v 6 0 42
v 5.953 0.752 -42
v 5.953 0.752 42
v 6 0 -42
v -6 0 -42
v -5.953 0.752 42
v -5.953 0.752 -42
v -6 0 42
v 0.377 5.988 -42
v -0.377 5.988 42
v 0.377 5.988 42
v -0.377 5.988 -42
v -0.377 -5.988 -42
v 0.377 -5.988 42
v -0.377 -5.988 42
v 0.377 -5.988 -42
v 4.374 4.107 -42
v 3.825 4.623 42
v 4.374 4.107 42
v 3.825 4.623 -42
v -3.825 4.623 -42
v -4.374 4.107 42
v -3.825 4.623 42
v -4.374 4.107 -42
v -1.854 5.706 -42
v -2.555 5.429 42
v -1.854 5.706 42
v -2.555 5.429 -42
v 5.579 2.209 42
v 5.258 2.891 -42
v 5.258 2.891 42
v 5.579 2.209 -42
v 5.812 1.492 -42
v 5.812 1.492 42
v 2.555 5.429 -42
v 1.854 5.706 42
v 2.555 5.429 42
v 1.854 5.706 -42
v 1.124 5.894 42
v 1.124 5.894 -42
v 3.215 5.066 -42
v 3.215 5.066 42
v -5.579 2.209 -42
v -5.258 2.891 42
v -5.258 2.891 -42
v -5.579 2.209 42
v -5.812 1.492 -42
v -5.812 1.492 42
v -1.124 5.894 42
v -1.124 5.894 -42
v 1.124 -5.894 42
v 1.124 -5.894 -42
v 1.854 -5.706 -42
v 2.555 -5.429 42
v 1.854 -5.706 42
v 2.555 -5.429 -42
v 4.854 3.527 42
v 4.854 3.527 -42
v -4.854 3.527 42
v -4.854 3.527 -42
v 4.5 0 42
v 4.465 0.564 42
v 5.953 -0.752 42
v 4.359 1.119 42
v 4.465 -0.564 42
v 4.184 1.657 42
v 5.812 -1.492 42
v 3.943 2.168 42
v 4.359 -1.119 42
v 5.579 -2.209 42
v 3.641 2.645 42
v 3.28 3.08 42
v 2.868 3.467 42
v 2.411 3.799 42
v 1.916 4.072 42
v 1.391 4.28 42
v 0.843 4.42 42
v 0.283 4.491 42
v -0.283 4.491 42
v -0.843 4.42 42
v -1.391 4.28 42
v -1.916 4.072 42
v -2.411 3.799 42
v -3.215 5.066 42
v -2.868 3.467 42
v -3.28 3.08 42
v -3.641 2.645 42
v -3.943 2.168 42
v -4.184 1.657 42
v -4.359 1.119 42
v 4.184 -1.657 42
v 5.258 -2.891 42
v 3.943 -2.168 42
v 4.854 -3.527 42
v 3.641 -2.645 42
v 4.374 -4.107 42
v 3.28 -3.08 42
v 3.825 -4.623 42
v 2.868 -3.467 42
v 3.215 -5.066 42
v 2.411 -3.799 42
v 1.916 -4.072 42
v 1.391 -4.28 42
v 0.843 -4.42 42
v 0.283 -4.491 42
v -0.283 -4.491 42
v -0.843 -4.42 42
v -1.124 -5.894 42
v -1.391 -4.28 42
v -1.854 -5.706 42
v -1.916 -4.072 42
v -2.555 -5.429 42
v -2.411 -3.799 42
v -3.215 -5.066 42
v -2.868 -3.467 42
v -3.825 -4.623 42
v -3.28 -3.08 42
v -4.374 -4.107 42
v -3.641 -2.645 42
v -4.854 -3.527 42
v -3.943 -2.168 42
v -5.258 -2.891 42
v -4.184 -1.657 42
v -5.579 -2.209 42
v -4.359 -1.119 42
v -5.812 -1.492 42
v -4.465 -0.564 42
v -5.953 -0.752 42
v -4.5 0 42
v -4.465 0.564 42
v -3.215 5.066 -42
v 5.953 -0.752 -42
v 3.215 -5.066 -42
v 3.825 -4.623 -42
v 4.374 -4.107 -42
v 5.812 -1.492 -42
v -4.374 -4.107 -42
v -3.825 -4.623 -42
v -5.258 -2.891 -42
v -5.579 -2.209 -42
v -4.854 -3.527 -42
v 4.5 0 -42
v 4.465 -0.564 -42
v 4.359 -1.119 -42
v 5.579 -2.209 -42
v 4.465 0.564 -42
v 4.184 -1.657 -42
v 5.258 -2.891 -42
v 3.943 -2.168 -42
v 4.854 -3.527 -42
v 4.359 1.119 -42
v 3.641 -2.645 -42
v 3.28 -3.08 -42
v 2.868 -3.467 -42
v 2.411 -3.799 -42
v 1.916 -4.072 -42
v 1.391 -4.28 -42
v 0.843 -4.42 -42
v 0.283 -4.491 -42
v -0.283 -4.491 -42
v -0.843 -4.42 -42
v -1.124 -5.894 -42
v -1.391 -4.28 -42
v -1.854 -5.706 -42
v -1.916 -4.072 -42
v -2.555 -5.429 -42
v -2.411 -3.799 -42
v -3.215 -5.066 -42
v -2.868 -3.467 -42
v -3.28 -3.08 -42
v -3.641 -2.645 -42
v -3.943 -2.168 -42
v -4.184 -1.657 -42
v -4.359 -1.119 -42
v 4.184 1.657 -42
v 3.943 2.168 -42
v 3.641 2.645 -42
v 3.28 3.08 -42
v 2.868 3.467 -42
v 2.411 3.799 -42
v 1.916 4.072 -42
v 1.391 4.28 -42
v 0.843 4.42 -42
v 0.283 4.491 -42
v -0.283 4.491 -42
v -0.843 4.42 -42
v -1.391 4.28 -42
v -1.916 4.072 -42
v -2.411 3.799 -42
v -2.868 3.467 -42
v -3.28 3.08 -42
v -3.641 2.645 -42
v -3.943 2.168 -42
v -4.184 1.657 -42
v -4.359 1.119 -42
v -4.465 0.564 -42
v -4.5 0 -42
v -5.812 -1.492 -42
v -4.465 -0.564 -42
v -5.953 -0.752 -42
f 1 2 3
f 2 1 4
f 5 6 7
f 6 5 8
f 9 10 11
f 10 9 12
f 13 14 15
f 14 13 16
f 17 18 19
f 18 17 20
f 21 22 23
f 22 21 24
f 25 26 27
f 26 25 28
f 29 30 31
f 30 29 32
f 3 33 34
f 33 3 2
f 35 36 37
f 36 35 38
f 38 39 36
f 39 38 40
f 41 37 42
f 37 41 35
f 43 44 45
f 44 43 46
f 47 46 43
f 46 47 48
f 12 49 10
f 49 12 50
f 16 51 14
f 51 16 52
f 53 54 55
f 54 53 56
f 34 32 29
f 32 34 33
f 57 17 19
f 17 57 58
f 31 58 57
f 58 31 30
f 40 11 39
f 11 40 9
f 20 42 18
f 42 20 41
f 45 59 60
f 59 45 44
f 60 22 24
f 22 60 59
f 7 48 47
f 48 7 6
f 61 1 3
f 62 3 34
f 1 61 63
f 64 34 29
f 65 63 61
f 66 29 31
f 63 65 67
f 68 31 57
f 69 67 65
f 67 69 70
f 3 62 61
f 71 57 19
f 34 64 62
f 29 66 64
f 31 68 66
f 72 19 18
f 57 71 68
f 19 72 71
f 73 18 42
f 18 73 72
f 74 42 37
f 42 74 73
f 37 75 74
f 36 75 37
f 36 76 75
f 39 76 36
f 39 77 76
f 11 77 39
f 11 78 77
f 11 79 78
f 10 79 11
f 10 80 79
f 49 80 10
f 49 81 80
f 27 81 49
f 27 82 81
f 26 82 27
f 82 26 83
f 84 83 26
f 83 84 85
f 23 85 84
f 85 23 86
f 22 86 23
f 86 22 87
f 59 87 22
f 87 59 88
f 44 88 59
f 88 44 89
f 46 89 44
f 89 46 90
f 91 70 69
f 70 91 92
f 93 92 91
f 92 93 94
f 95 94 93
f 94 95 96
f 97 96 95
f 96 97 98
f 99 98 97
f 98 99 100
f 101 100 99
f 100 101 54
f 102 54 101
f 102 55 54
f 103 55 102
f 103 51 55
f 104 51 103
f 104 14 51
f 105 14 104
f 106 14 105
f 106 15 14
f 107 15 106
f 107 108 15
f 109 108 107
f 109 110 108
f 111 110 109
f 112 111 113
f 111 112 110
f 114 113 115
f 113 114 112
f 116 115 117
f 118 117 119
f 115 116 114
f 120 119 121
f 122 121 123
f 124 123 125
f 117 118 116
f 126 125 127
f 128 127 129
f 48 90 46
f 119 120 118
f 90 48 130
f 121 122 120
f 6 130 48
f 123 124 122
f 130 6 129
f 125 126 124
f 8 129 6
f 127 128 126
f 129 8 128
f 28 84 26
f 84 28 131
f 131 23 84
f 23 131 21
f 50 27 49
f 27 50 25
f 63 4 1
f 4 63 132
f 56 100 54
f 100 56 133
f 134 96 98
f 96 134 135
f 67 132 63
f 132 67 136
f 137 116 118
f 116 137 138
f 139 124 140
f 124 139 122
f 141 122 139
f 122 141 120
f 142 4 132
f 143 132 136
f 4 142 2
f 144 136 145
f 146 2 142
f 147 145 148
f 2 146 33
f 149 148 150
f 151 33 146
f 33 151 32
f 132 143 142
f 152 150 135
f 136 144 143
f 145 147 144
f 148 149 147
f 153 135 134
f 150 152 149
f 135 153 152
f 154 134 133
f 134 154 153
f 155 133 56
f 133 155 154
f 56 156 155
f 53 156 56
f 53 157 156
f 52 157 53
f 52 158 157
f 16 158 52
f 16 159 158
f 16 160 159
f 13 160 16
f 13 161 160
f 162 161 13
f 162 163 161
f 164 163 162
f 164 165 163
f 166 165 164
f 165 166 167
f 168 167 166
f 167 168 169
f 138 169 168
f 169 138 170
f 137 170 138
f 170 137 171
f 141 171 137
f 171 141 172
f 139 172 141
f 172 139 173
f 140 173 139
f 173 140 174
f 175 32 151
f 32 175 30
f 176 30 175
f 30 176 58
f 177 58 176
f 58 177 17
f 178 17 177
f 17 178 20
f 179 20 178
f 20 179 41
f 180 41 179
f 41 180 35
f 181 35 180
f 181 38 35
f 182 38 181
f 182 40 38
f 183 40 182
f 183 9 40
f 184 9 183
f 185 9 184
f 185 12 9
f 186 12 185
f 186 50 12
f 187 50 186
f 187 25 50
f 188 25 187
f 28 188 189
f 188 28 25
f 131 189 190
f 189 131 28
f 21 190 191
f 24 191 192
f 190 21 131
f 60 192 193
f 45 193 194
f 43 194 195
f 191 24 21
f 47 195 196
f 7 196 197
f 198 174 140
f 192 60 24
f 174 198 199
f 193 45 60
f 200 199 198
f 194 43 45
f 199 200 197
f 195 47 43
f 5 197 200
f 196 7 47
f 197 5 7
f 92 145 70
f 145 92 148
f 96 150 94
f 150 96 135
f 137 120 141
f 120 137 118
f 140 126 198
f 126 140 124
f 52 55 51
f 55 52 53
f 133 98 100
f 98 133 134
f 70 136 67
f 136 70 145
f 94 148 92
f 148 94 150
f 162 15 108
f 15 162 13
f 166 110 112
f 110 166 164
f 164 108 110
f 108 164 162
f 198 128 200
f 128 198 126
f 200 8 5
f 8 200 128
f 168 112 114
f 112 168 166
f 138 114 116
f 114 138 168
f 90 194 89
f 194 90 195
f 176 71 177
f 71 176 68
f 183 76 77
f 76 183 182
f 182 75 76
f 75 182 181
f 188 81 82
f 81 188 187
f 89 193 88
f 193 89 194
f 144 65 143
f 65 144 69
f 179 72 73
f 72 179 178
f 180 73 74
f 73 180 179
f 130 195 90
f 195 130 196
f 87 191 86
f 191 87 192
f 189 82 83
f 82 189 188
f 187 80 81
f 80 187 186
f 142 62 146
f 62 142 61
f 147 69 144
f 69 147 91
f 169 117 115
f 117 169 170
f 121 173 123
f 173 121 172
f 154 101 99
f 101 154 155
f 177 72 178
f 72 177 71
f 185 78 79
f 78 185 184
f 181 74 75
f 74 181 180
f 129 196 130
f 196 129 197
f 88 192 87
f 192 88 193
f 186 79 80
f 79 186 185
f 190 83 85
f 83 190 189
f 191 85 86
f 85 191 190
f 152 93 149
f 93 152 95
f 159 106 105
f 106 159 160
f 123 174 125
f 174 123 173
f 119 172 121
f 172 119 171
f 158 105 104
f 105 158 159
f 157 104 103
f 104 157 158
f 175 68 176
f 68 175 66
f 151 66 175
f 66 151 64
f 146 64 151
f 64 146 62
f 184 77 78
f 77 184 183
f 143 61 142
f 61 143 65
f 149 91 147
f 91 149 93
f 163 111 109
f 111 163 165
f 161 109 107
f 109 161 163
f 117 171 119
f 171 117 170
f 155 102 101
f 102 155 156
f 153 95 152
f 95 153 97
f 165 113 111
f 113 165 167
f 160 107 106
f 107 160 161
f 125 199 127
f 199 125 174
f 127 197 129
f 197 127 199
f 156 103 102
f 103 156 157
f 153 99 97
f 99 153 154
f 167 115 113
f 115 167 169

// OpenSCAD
$fn = 50;


difference() {
	union() {
		translate(v = [0, 0, -42.0000000000]) {
			cylinder(h = 84, r = 6.0000000000);
		}
	}
	union() {
		translate(v = [0, 0, -100.0000000000]) {
			cylinder(h = 200, r = 4.5000000000);
		}
	}
}
